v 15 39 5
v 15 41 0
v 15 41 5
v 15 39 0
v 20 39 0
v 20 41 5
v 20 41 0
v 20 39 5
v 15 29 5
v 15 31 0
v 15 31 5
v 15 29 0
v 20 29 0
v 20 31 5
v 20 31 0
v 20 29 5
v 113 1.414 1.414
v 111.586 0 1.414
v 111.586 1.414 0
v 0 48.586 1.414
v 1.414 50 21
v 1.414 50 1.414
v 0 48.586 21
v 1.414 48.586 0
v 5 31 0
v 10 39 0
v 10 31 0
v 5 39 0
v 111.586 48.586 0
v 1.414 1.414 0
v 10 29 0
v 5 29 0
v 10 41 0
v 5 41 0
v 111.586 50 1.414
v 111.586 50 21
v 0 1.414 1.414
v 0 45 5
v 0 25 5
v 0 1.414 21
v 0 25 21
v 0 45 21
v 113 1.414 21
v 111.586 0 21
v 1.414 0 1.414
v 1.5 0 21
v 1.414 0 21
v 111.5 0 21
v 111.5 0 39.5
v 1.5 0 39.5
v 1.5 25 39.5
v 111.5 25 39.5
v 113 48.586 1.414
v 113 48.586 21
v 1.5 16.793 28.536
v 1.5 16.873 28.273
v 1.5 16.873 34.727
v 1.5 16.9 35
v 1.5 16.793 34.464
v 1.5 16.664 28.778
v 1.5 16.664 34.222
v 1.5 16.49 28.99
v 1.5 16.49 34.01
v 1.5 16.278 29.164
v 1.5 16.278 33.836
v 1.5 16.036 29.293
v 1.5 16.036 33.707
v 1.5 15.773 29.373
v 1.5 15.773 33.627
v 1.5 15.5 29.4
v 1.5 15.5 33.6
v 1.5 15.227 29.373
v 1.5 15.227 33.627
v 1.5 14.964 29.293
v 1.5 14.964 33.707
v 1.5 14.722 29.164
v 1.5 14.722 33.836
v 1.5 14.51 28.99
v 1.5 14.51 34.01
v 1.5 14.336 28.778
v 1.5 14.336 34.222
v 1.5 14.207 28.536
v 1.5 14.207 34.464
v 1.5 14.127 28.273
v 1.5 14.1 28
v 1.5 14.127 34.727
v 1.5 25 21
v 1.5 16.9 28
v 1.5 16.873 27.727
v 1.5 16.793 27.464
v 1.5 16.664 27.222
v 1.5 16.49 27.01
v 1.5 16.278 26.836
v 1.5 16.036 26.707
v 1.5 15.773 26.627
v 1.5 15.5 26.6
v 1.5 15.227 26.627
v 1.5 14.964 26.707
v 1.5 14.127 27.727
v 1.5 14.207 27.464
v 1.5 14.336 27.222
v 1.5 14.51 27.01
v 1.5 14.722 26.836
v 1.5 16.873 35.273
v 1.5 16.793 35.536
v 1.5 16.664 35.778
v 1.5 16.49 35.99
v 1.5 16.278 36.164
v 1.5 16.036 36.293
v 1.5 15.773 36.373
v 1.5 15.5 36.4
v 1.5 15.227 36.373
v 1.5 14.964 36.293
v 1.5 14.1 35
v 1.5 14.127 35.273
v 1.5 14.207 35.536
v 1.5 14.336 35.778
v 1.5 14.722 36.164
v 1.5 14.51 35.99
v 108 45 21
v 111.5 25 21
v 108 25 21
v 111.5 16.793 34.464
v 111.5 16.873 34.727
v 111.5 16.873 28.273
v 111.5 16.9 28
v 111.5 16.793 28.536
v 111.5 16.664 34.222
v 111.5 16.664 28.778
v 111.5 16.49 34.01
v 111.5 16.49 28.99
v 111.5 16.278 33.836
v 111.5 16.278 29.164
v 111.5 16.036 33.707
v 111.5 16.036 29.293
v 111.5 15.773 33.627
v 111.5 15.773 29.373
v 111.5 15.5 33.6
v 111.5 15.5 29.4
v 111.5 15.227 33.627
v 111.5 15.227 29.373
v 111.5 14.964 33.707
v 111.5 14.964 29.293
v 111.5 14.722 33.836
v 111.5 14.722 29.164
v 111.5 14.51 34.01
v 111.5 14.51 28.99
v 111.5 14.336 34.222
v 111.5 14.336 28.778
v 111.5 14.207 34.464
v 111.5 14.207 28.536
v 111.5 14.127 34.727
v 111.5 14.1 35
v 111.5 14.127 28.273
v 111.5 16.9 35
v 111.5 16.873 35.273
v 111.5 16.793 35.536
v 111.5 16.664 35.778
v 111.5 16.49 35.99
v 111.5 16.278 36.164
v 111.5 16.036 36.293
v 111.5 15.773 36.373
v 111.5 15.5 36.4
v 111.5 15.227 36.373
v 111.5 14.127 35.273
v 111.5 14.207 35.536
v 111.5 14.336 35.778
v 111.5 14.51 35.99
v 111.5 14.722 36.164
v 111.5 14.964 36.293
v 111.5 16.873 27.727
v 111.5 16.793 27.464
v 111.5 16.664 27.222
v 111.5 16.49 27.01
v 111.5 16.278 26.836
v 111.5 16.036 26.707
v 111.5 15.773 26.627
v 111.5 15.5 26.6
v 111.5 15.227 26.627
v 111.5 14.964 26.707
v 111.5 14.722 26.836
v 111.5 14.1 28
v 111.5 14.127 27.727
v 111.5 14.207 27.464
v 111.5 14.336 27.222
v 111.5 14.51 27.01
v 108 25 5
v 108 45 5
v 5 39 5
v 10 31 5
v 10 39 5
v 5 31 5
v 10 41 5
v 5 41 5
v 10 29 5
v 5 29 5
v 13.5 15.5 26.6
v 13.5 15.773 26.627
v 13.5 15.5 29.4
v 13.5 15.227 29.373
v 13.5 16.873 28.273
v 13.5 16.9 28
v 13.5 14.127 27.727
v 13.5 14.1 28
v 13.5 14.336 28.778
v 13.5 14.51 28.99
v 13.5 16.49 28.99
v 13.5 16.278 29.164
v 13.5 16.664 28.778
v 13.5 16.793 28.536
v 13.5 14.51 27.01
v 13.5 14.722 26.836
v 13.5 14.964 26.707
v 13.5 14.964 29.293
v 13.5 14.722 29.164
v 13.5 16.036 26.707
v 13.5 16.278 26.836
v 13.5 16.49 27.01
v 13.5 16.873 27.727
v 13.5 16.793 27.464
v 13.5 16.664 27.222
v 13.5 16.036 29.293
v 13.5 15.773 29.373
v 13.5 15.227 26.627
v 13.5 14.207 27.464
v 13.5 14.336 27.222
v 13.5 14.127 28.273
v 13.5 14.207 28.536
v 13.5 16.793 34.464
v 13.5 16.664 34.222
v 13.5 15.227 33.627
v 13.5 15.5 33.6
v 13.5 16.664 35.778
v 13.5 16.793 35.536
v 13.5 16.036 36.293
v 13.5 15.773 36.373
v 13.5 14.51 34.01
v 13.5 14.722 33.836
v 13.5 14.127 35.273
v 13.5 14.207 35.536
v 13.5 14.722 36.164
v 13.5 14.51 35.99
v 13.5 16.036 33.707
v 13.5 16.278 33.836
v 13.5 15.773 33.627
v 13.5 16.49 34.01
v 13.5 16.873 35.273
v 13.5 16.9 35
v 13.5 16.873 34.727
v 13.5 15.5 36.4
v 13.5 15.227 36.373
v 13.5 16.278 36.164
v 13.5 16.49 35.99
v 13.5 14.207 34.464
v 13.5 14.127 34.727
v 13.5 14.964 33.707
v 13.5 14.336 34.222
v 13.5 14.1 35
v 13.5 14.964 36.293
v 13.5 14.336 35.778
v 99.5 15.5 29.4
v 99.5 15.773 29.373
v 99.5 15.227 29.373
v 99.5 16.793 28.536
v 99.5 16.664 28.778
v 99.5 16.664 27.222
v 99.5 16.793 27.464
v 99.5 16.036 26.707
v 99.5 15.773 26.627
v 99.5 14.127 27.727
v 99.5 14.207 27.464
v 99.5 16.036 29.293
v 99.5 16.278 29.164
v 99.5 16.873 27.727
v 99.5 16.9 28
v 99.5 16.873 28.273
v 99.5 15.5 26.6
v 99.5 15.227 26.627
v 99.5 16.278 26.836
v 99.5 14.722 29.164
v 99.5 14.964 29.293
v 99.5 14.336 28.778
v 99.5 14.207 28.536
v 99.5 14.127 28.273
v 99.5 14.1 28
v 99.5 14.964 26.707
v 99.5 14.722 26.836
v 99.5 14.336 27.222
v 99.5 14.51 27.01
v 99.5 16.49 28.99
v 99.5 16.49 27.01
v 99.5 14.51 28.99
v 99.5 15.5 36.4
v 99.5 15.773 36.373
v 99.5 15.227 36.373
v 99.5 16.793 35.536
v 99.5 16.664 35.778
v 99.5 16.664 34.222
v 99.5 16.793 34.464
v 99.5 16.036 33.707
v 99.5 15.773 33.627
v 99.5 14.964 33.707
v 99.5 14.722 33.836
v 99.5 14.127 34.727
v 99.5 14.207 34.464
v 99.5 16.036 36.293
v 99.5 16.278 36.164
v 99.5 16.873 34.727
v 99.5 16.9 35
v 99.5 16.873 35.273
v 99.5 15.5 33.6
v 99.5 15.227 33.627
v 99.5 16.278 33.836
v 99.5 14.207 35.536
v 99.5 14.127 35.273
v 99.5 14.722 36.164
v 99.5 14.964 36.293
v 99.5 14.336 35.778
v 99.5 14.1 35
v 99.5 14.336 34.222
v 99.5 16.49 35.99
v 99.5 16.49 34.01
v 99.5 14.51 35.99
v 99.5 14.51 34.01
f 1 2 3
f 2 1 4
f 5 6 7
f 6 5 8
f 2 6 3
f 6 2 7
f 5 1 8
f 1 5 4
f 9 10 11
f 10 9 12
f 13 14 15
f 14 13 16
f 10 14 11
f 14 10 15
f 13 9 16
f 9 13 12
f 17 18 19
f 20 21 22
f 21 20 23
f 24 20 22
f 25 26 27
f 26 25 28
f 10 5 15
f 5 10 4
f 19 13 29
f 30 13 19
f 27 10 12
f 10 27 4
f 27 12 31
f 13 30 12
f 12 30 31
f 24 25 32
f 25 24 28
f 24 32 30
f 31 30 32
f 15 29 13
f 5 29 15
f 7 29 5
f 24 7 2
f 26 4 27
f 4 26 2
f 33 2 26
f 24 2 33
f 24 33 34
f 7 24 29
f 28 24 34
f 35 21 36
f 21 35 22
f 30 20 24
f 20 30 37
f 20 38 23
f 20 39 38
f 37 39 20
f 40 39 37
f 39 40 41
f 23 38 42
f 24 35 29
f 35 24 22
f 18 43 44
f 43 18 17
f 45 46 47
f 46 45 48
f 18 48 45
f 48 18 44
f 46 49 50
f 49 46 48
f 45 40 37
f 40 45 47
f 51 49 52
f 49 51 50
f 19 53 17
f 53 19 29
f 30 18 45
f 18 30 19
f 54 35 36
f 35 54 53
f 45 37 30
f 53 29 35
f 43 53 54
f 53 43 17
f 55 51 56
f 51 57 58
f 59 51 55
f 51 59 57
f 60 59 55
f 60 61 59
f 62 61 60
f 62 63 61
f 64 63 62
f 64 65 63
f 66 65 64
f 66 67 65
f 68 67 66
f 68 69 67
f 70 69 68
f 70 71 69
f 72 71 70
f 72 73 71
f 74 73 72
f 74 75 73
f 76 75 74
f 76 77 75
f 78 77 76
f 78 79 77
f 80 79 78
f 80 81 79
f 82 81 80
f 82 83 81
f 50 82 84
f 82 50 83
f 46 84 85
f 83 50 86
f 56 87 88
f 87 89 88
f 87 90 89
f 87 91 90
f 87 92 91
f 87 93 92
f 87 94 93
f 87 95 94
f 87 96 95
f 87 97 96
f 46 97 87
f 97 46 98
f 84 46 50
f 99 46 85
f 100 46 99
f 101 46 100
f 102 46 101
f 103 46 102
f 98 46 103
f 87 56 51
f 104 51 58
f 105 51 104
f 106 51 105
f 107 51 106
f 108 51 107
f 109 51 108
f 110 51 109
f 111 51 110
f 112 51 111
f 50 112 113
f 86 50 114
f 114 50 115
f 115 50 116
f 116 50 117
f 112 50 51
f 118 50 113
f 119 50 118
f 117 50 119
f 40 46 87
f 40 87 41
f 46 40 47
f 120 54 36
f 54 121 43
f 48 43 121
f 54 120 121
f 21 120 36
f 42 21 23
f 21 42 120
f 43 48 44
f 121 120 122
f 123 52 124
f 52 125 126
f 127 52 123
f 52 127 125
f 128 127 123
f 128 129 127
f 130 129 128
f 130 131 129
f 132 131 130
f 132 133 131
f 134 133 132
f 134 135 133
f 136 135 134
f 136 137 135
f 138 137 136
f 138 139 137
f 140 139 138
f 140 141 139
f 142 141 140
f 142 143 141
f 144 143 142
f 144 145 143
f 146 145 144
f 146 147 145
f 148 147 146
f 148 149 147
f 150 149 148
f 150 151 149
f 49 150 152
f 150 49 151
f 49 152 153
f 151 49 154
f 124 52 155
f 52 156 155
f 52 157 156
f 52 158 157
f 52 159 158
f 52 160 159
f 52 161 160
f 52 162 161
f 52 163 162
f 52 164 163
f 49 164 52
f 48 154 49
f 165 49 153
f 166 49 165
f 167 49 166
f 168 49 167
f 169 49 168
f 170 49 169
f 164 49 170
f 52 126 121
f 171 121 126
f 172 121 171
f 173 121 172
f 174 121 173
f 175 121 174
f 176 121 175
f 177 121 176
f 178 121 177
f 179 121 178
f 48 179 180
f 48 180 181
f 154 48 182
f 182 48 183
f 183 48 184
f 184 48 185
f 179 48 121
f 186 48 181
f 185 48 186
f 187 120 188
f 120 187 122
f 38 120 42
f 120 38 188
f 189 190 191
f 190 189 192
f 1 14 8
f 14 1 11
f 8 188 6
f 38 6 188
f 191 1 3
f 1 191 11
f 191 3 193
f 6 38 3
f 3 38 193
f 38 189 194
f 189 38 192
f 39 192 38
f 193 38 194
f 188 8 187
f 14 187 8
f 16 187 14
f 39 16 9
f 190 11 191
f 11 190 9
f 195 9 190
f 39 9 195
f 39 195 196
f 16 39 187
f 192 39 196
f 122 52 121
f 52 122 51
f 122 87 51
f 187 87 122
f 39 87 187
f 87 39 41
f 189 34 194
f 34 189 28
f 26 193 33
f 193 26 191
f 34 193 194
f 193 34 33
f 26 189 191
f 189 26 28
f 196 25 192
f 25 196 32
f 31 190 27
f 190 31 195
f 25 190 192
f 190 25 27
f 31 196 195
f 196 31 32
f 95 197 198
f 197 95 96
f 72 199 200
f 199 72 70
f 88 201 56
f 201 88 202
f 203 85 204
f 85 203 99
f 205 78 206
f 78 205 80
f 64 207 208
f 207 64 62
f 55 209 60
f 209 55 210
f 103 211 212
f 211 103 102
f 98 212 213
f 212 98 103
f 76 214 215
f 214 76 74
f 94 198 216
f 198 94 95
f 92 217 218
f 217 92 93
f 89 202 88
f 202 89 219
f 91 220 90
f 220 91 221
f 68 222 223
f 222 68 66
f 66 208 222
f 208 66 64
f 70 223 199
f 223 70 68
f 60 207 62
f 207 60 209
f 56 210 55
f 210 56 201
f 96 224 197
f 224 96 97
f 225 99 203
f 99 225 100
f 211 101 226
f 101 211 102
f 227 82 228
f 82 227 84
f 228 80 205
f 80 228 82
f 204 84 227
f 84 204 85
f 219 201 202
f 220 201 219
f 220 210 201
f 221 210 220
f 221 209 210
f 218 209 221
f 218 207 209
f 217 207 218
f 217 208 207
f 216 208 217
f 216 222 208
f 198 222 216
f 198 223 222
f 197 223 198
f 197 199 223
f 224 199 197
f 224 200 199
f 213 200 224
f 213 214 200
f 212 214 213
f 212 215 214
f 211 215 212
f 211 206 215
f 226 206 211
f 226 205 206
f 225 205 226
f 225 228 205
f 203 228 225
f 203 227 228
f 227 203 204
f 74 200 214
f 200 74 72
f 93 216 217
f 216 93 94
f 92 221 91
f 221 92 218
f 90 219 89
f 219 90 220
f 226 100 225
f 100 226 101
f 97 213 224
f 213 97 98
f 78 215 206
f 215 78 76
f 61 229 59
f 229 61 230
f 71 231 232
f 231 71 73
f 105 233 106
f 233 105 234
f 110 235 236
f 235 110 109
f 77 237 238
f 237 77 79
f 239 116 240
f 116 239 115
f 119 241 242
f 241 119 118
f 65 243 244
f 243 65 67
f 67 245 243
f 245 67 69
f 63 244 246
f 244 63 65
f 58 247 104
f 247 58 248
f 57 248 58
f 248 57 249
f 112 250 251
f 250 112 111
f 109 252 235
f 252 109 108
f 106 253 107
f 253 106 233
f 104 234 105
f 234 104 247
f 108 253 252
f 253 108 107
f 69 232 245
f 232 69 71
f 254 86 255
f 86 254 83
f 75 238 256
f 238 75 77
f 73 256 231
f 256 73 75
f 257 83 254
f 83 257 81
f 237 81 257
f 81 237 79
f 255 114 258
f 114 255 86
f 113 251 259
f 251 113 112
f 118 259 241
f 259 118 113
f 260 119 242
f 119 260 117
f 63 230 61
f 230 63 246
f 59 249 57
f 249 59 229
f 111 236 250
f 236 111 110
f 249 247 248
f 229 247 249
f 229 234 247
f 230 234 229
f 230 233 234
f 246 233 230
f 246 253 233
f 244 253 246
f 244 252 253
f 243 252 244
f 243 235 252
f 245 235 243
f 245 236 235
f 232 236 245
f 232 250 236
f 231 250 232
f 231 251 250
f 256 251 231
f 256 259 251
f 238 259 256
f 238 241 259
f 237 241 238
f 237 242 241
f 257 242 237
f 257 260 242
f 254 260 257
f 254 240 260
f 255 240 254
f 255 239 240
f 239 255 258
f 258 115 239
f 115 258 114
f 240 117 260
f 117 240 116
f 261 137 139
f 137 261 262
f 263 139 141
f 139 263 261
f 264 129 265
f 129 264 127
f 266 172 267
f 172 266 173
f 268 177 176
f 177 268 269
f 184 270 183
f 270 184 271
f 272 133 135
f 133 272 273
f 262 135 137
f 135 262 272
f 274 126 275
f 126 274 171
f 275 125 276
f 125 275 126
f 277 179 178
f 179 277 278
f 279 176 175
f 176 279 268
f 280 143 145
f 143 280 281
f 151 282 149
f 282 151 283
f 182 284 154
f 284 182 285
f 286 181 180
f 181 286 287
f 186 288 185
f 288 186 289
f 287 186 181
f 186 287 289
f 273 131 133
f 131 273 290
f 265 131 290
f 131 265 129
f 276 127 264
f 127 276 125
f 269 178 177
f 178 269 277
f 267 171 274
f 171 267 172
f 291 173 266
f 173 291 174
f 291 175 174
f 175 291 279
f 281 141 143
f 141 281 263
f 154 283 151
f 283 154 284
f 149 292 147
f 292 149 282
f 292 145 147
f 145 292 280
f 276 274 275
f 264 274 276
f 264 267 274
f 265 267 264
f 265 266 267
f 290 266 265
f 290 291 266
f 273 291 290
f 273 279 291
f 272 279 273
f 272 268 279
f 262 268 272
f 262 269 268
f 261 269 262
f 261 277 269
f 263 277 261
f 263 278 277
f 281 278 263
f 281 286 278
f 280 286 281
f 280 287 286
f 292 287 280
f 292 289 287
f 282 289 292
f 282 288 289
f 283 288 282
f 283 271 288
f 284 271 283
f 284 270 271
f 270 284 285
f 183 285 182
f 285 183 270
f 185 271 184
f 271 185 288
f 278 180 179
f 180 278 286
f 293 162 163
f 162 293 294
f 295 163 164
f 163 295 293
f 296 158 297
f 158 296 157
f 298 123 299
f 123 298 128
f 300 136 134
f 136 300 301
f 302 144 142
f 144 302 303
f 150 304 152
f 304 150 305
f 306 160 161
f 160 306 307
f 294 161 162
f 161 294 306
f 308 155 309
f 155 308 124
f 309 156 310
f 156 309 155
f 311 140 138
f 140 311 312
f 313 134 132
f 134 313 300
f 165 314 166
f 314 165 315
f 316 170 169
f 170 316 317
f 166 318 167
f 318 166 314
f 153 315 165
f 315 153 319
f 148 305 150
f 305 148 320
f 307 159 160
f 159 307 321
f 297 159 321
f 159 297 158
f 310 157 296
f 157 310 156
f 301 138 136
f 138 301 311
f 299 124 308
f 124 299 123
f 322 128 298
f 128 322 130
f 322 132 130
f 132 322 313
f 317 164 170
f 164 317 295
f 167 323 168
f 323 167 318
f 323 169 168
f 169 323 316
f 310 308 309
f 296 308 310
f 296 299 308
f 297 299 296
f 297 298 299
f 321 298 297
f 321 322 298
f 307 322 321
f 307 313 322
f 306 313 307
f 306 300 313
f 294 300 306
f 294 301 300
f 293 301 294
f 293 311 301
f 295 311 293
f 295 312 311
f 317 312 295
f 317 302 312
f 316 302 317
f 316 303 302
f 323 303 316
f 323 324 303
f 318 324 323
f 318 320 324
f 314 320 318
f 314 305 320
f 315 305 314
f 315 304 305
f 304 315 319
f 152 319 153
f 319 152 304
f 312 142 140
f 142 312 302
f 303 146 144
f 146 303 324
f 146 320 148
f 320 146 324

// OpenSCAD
min_T = 5;                // minimum wall thickness of part

zip_T = 2;                // zip tie thickness
zip_W = 5;                // zip tie width

cable_D = 8;              // cable diameter

chm = 2;                  // chamfer size, hypotenuse
chm_leg = chm/sqrt(2);    // chamfer leg size, leg

inside_X = 110;           // inside space of psu, x distance
wall_T = 1.5;             // sheet metal wall thickness

Y1 = 21;                  // y distance protuding from front of psu
Y2 = 18.5;                // y distance protuding into psu, over the top of terminals

Z1 = 25;                  // z distance above terminals to top of psu
Z2 = 50;                  // thickness of psu

b_SD = 2.8;               // bolt shaft diameter, interference fit
b_SL = 12;                // bolt shaft length

b1_Y = 7;               // bolt hole 1 Y placement, from front of psu
b1_Z = 15.5;              // bolt hole 1 Z placement, from top of psu

b2_Y = 14;                // bolt hole 2 Y placement, from front of psu
b2_Z = b1_Z;              // bolt hole 2 Z placement, from top of psu

difference(){
  // body solid
  hull(){
    translate([chm_leg, chm_leg, chm_leg])
    cylinder(r = chm_leg, h = Y1 + Y2 - chm_leg, $fn = 4);
    
    translate([inside_X + 2*wall_T - chm_leg, chm_leg, chm_leg])
    cylinder(r = chm_leg, h = Y1 + Y2 - chm_leg, $fn = 4);
    
    translate([chm_leg, Z2 - chm_leg, chm_leg])
    cylinder(r = chm_leg, h = Y1 + Y2 - chm_leg, $fn = 4);
    
    translate([inside_X + 2*wall_T - chm_leg, Z2 - chm_leg, chm_leg])
    cylinder(r = chm_leg, h = Y1 + Y2 - chm_leg, $fn = 4);
    
    translate([chm_leg, chm_leg, chm_leg])
    rotate([0, 90, 0])
    cylinder(r = chm_leg, h = inside_X + 2*wall_T - 2*chm_leg, $fn = 4);
    
    translate([chm_leg, Z2 - chm_leg, chm_leg])
    rotate([0, 90, 0])
    cylinder(r = chm_leg, h = inside_X + 2*wall_T - 2*chm_leg, $fn = 4);
    
    translate([chm_leg, chm_leg, chm_leg])
    rotate([-90, 0, 0])
    cylinder(r = chm_leg, h = Z2 - 2*chm_leg, $fn = 4);
    
    translate([inside_X + 2*wall_T - chm_leg, chm_leg, chm_leg])
    rotate([-90, 0, 0])
    cylinder(r = chm_leg, h = Z2 - 2*chm_leg, $fn = 4);
  }
  
  //color("grey", 0.2)
  //cube([inside_X + 2*wall_T, Z2, Y1 + Y2]);
  
  
  // wall sections
  translate([-0.1, -0.1, Y1])
  cube([wall_T + 0.1, Z2 + 0.2, Y1 + Y2 + 0.1]);
  
  translate([inside_X + wall_T, -0.1, Y1])
  cube([wall_T + 0.1, Z2 + 0.2, Y1 + Y2 + 0.1]);
  
  // channel
  translate([-0.1, Z1, min_T])
  cube([inside_X + 2*wall_T - min_T + 0.1, Z2 - Z1 - min_T, Y1 + Y2 - min_T + 0.1]);
  
  // zip tie holes
  translate([min_T, Z2 - min_T - (Z2 - Z1 - min_T)/2 + cable_D/2, -0.1])
  cube([zip_W, zip_T, min_T + 0.2]);
  
  translate([min_T, Z2 - min_T - (Z2 - Z1 - min_T)/2 - cable_D/2 - zip_T, -0.1])
  cube([zip_W, zip_T, min_T + 0.2]);
  
  translate([zip_W + min_T, 0, 0]){
    translate([min_T, Z2 - min_T - (Z2 - Z1 - min_T)/2 + cable_D/2, -0.1])
    cube([zip_W, zip_T, min_T + 0.2]);
    
    translate([min_T, Z2 - min_T - (Z2 - Z1 - min_T)/2 - cable_D/2 - zip_T, -0.1])
    cube([zip_W, zip_T, min_T + 0.2]);
  }
  
  // other
  translate([-0.1, Z1, Y1])
  cube([inside_X + 2*wall_T + 0.2, Z2 - Z1 + 0.1, Y2 + 0.1]);
  
  // holes
  translate([wall_T - 0.1, b1_Z, Y1 + b1_Y])
  rotate([0, 90, 0])
  cylinder(d = b_SD, h = b_SL + 0.1, $fn = 32);
  
  translate([wall_T - 0.1, b2_Z, Y1 + b2_Y])
  rotate([0, 90, 0])
  cylinder(d = b_SD, h = b_SL + 0.1, $fn = 32);
  
  translate([inside_X + wall_T + 0.1, b1_Z, Y1 + b1_Y])
  rotate([0, -90, 0])
  cylinder(d = b_SD, h = b_SL + 0.1, $fn = 32);
  
  translate([inside_X + wall_T + 0.1, b2_Z, Y1 + b2_Y])
  rotate([0, -90, 0])
  cylinder(d = b_SD, h = b_SL + 0.1, $fn = 32);
  
}
